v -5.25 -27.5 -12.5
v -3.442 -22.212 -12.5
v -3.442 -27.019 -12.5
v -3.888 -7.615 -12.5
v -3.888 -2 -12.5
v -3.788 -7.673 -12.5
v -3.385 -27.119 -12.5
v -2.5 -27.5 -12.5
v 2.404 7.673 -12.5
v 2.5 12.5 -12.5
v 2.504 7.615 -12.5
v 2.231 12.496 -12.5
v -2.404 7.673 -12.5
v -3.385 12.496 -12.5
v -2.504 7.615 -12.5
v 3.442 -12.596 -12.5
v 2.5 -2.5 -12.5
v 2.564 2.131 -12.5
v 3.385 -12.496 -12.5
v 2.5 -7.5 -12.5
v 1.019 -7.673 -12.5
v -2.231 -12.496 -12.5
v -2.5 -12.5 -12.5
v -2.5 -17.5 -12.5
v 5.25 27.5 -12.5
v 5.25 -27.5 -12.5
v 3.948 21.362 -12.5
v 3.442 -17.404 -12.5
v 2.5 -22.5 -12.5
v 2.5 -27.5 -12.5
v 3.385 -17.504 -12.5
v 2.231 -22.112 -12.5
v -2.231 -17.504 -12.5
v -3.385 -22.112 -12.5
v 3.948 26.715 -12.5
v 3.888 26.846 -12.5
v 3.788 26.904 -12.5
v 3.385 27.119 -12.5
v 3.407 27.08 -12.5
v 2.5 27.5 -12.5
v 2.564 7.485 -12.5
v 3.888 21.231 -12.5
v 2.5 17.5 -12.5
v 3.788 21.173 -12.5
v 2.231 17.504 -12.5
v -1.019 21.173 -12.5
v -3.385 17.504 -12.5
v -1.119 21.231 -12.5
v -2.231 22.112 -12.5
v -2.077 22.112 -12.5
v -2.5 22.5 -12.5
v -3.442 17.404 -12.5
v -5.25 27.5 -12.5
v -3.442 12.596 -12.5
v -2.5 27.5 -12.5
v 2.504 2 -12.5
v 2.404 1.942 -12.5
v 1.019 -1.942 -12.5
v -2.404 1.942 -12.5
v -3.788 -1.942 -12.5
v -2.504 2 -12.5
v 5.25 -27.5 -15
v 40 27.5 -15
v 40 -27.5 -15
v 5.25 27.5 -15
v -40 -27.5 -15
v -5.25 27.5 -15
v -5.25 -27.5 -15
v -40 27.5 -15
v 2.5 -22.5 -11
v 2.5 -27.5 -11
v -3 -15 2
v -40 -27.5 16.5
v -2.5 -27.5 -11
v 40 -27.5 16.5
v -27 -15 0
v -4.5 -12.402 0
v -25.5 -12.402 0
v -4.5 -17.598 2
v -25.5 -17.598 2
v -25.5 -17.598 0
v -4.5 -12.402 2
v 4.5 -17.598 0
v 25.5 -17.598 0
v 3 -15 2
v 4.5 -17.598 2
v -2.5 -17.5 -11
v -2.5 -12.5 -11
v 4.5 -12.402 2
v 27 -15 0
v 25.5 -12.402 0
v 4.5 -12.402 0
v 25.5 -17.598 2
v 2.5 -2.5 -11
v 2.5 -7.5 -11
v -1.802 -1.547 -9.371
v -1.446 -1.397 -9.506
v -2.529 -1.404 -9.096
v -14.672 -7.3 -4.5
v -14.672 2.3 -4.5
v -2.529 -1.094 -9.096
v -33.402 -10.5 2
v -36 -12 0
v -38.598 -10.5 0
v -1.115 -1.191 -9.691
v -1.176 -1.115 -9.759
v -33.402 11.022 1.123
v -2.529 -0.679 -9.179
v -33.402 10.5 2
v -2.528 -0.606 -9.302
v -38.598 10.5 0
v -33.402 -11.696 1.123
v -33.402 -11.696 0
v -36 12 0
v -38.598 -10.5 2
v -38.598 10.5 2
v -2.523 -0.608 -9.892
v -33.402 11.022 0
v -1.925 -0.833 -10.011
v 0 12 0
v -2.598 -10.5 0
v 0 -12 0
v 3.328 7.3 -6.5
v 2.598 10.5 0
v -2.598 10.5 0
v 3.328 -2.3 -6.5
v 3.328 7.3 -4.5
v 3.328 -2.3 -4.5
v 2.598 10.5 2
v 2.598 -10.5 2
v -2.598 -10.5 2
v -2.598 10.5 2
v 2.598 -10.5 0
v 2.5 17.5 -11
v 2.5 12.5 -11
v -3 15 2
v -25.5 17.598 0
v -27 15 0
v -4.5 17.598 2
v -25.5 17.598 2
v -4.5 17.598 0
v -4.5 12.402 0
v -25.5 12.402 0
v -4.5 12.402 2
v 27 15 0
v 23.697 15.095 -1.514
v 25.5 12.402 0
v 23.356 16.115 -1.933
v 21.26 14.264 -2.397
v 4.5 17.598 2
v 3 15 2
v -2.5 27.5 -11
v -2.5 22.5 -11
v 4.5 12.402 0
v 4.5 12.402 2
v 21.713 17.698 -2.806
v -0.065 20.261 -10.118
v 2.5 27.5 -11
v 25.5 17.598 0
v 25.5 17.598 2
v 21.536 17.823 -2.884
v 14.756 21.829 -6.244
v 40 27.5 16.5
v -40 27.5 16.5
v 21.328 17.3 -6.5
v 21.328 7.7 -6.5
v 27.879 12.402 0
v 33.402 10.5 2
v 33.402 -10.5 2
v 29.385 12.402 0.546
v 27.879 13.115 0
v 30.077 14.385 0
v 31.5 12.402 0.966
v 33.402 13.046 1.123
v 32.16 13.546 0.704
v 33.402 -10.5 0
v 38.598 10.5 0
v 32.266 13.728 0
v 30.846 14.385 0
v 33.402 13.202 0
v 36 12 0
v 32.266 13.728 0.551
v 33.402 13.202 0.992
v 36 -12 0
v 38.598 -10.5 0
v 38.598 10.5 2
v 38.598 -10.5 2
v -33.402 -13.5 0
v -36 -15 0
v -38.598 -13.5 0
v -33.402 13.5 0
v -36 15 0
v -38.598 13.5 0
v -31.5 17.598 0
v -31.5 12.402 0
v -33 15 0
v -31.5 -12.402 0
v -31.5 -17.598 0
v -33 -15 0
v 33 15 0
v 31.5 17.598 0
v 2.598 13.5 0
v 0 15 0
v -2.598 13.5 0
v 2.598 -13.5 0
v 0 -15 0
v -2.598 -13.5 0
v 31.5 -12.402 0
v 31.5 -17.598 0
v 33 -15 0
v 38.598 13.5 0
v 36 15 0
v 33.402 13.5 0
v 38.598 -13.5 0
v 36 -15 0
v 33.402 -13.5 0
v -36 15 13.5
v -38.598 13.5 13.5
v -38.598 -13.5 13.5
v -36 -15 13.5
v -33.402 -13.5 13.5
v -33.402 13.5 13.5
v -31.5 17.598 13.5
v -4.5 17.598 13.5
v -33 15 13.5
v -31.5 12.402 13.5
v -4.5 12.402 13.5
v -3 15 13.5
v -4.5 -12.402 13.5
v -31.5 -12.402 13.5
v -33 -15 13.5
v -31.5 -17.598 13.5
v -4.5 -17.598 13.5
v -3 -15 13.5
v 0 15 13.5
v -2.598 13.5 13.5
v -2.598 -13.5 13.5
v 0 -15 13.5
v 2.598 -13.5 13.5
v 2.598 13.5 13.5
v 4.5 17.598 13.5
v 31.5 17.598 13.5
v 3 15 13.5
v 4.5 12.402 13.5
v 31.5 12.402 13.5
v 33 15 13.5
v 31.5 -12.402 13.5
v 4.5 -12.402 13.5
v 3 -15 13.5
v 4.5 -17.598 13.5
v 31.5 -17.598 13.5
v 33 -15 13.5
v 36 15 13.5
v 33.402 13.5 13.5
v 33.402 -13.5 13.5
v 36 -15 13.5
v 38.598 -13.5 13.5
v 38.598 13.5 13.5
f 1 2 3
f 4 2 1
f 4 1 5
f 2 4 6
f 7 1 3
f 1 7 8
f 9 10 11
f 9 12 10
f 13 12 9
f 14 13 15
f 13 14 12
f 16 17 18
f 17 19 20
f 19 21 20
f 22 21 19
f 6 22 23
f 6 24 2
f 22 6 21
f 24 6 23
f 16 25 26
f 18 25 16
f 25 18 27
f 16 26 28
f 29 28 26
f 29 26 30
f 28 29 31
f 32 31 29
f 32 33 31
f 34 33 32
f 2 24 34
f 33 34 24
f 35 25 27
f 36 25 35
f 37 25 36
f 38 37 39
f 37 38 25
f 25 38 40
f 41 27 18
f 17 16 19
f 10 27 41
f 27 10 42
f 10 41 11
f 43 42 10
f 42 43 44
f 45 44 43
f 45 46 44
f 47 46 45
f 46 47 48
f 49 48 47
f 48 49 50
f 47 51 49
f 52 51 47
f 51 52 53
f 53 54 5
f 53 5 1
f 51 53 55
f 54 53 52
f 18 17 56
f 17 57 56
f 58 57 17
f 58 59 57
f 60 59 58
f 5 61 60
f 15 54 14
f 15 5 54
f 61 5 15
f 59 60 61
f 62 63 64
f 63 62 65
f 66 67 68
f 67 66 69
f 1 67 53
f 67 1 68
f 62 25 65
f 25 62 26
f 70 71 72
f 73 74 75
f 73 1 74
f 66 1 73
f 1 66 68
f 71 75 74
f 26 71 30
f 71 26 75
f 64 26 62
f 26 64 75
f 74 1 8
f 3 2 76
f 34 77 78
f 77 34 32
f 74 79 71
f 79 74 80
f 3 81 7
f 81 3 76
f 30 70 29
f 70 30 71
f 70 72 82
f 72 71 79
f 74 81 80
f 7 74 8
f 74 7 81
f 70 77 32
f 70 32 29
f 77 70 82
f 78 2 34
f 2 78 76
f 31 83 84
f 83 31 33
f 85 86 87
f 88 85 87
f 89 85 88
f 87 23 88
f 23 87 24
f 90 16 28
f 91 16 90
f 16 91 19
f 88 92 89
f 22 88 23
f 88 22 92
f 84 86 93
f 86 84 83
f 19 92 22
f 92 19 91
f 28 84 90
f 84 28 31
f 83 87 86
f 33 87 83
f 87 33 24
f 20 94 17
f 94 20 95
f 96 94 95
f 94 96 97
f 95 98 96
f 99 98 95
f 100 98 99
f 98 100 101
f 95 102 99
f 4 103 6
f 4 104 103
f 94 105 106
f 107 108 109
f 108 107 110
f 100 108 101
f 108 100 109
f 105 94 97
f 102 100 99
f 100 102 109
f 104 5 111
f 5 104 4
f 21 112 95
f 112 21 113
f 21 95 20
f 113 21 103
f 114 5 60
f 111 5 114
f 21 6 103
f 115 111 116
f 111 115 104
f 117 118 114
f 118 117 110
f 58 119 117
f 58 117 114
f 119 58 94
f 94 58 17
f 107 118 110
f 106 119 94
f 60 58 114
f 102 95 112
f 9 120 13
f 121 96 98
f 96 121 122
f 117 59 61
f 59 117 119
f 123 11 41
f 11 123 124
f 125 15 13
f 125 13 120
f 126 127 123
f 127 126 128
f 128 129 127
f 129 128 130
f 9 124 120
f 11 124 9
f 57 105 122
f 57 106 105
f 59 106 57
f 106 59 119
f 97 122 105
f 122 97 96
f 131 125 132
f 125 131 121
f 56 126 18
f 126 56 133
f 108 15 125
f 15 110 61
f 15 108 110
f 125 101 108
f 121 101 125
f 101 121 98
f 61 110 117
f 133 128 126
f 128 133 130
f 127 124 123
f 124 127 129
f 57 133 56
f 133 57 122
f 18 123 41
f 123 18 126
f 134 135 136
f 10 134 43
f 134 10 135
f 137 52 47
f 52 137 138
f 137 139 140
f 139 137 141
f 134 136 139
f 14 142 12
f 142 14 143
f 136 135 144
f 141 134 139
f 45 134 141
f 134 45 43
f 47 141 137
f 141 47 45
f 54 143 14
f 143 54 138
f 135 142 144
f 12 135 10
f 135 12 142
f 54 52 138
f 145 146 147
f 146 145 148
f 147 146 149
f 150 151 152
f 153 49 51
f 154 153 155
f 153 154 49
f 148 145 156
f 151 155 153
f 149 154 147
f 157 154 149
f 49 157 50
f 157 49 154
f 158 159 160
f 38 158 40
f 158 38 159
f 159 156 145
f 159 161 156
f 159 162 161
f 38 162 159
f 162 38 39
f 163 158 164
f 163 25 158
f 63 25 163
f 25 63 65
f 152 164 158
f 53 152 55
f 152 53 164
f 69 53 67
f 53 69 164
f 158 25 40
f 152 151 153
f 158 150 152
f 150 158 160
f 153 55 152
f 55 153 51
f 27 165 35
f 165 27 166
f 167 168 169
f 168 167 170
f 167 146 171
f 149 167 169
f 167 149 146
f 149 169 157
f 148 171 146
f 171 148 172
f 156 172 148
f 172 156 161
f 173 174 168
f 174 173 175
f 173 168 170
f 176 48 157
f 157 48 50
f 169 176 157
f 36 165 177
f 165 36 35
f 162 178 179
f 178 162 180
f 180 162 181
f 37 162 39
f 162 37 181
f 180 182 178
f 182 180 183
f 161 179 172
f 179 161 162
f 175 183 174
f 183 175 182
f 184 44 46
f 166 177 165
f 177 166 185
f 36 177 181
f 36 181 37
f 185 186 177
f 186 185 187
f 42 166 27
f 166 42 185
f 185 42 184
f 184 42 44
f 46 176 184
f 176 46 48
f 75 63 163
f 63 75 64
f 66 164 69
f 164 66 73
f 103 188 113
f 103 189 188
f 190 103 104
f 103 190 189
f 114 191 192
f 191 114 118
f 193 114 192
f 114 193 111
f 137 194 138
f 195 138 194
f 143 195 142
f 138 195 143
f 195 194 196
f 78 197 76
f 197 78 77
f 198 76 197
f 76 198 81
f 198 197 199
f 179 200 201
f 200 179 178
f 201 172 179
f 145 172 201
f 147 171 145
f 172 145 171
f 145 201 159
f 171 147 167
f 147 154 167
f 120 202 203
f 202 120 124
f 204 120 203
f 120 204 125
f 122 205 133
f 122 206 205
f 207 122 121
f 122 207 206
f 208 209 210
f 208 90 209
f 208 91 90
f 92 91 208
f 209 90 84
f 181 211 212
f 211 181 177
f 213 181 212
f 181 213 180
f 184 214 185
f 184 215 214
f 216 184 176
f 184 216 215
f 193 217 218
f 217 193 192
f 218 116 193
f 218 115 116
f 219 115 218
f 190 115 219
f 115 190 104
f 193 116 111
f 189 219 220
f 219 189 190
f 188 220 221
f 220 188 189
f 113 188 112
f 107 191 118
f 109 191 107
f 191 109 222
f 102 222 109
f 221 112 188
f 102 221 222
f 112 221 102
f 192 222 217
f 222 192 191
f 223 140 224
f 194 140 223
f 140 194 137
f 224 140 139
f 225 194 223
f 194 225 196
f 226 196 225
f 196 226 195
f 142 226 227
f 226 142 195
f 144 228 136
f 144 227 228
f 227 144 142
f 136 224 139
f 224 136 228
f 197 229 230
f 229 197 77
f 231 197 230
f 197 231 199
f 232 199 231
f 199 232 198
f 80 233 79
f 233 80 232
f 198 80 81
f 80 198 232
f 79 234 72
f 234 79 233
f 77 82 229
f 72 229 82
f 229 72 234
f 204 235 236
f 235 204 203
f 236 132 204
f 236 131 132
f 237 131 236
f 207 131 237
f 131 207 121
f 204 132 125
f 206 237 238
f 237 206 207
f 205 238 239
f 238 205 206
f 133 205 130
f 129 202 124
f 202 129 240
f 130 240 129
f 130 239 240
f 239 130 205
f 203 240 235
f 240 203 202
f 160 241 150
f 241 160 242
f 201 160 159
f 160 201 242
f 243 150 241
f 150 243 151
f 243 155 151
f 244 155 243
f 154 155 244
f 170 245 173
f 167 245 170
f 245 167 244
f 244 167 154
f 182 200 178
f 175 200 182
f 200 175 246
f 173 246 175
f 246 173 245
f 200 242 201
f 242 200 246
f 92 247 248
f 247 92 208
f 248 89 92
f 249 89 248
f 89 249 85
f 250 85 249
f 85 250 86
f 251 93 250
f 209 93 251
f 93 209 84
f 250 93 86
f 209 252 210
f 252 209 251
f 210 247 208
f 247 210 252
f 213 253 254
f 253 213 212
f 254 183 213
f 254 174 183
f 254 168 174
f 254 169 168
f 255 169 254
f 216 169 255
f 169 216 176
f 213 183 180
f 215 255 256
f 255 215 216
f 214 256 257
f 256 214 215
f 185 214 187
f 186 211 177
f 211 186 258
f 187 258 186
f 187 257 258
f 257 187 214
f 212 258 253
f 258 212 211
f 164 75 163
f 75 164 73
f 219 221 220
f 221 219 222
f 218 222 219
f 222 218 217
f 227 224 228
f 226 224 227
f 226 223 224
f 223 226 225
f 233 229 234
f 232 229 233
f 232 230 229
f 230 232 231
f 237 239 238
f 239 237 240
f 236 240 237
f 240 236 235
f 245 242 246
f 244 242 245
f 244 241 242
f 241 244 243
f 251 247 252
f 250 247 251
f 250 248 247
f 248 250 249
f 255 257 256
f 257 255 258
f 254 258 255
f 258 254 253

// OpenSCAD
// WS2812 LED Strip Parameters - verified measurements
led_spacing = 10;      // 10mm between LED centers
strip_width = 10;      // 10mm wide LED strip
strip_height = 2;      // Keep same
tolerance = 0.5;       // Keep same
led_size = 5;         // 5mm square LED cutouts

// Updated Base Parameters
base_width = 80;      // Optimized smaller base
base_length = 55;     // Adjusted proportionally
base_height = 30;     // Reduced from 50
wire_channel_length = 10;

// Updated Light pipe parameters
cavity_width_bottom = 3;  
cavity_width_top = 6;
path_separation = 8;      

// Updated 7-Segment Display Parameters
segment_h_length = 30;    // Increased for better visibility
segment_v_length = 30;    // Increased for better visibility
segment_width = 6;
segment_depth = 15;       // Reduced from 20
segment_spacing = 3;
x_offset = 15;           // Adjusted for larger segments

// Add diffuser parameters
diffuser_height = 3;

// LED Strip Channel with wire channels - centered
module led_channel() {
    rotate([0, 0, 90]) {
        // Main channel exactly 10mm wide plus tolerance
        translate([-base_width/2 + wire_channel_length, -strip_width/2 - tolerance/2, -base_height/2])
            cube([base_width - 2*wire_channel_length, strip_width + tolerance, strip_height + tolerance]);
        
        // Wire channels same width
        translate([-base_width/2, -strip_width/2 - tolerance/2, -base_height/2])
            cube([wire_channel_length, strip_width + tolerance, strip_height + tolerance]);
        translate([base_width/2 - wire_channel_length, -strip_width/2 - tolerance/2, -base_height/2])
            cube([wire_channel_length, strip_width + tolerance, strip_height + tolerance]);
    }
}

// Single light pipe cavity with elongating shape
module light_cavity(led_pos, segment_pos, is_horizontal=false) {
    // Calculate heights for better progression
    z_bottom = -base_height/2 + strip_height;
    z_top = base_height/2 - segment_depth;
    total_height = z_top - z_bottom;
    
    hull() {
        // Bottom (at LED) - small square
        translate([led_pos[0] - led_size/2, led_pos[1], z_bottom])
            cube([led_size, led_size, 2]);
        
        // Middle transition point - optimized taper
        translate([
            (led_pos[0] + segment_pos[0])/2, 
            (led_pos[1] + segment_pos[1])/2, 
            z_bottom + total_height/2
        ]) {
            rotate([0, 0, is_horizontal ? 0 : 90])
                linear_extrude(height=2)
                    segment(segment_width*2, cavity_width_top*0.8);
        }
            
        // Top (at segment) - full segment shape
        translate([segment_pos[0], segment_pos[1], z_top]) {
            rotate([0, 0, is_horizontal ? 0 : 90])
                linear_extrude(height=2)
                    segment(segment_width*4, segment_width);
        }
    }
}

// All light cavities with corrected segment positions and mirroring
module all_cavities(visualization=false) {
    color_alpha = visualization ? ["Red", 0.8] : ["Gold", 1];
    
    color(color_alpha[0], color_alpha[1])
    rotate([0, 0, 90]) {
        y_offset = -strip_width/4;
        
        // LED positions (x, y)
        led1 = [-25, y_offset];  // LED1
        led2 = [-15, y_offset];  // LED2
        led3 = [-5, y_offset];   // LED3
        led4 = [5, y_offset];    // LED4
        led5 = [15, y_offset];   // LED5
        led6 = [25, y_offset];   // LED6
        
        // Segment positions (x, y) - scaled from Python coordinates
        seg_f = [-15, 15];    // F (top left vertical)
        seg_e = [-15, -15];   // E (bottom left vertical)
        seg_a = [0, 36];      // A (top horizontal)
        seg_g = [0, 0];       // G (middle)
        seg_b = [15, 15];     // B (top right vertical)
        seg_c = [15, -15];    // C (bottom right vertical)
        seg_d = [0, -36];     // D (bottom horizontal)
        
        // Light paths
        light_cavity(led1, seg_f, false);   // LED1 → F (vertical)
        light_cavity(led2, seg_e, false);   // LED2 → E (vertical)
        light_cavity(led3, seg_a, true);    // LED3 → A (horizontal)
        light_cavity(led4, seg_g, true);    // LED4 → G (horizontal)
        light_cavity(led5, seg_b, false);   // LED5 → B (vertical)
        light_cavity(led6, seg_c, false);   // LED6 → C (vertical)
        light_cavity(led6, seg_d, true);    // LED6 → D (horizontal)
    }
}

// Base with LED channel and cavities
module base() {
    difference() {
        // Main block
        cube([base_width, base_length, base_height], center=true);
        // LED channel with wire channels
        led_channel();
        // Light pipe cavities
        all_cavities(false);  // Use same paths for actual cavities
        
        // Ensure cavities connect to segments
        translate([0, 0, base_height/2 - segment_depth])
            linear_extrude(height=segment_depth + 1)
                seven_segments();
    }
}

module segment(length, width) {
    // Elongated hexagonal shape
    hull() {
        translate([-length/2 + width/2, 0, 0]) 
            circle(d=width, $fn=6);
        translate([length/2 - width/2, 0, 0])  
            circle(d=width, $fn=6);
    }
}

module seven_segments() {
    rotate([0, 0, 90])  // Rotate the entire segment layout 90°
    union() {
        // A (now right horizontal)
        translate([0, segment_v_length + segment_spacing*2, 0]) 
            segment(segment_h_length, segment_width);
        
        // B,F (now top and bottom verticals on right side)
        translate([x_offset, segment_v_length/2 + segment_spacing, 0]) 
            rotate([0,0,90]) 
                segment(segment_v_length, segment_width);  // B
        translate([-x_offset, segment_v_length/2 + segment_spacing, 0]) 
            rotate([0,0,90]) 
                segment(segment_v_length, segment_width);  // F
        
        // G (middle horizontal, now vertical)
        translate([0, 0, 0])
            segment(segment_h_length, segment_width);
        
        // C,E (bottom verticals, now left side horizontals)
        translate([x_offset, -segment_v_length/2 - segment_spacing, 0]) 
            rotate([0,0,90]) 
                segment(segment_v_length, segment_width);  // C
        translate([-x_offset, -segment_v_length/2 - segment_spacing, 0]) 
            rotate([0,0,90]) 
                segment(segment_v_length, segment_width);  // E
        
        // D (now left horizontal)
        translate([0, -segment_v_length - segment_spacing*2, 0]) 
            segment(segment_h_length, segment_width);
    }
}

// Top layer with segment cavities
module segment_layer() {
    color("SteelBlue")
    difference() {
        // Main plate - extended to match base
        translate([0, 0, base_height/2])
            cube([base_width, base_length, segment_depth], center=true);
        
        // Individual segment cavities
        translate([0, 0, base_height/2 - segment_depth/2])
            linear_extrude(height=segment_depth + 1)
                seven_segments();
    }
}

// Diffuser layer module
module diffuser_layer() {
    color("White", alpha=0.2)  // Semi-transparent to visualize
    translate([0, 0, base_height/2])  // Changed to sit directly on base
        cube([base_width, base_length, diffuser_height], center=true);
}

// Render just the paths in red with slight transparency
//all_cavities(true);  // Show paths
color("Green", alpha=0.9)
union() {
   base();
   diffuser_layer();
}
   
